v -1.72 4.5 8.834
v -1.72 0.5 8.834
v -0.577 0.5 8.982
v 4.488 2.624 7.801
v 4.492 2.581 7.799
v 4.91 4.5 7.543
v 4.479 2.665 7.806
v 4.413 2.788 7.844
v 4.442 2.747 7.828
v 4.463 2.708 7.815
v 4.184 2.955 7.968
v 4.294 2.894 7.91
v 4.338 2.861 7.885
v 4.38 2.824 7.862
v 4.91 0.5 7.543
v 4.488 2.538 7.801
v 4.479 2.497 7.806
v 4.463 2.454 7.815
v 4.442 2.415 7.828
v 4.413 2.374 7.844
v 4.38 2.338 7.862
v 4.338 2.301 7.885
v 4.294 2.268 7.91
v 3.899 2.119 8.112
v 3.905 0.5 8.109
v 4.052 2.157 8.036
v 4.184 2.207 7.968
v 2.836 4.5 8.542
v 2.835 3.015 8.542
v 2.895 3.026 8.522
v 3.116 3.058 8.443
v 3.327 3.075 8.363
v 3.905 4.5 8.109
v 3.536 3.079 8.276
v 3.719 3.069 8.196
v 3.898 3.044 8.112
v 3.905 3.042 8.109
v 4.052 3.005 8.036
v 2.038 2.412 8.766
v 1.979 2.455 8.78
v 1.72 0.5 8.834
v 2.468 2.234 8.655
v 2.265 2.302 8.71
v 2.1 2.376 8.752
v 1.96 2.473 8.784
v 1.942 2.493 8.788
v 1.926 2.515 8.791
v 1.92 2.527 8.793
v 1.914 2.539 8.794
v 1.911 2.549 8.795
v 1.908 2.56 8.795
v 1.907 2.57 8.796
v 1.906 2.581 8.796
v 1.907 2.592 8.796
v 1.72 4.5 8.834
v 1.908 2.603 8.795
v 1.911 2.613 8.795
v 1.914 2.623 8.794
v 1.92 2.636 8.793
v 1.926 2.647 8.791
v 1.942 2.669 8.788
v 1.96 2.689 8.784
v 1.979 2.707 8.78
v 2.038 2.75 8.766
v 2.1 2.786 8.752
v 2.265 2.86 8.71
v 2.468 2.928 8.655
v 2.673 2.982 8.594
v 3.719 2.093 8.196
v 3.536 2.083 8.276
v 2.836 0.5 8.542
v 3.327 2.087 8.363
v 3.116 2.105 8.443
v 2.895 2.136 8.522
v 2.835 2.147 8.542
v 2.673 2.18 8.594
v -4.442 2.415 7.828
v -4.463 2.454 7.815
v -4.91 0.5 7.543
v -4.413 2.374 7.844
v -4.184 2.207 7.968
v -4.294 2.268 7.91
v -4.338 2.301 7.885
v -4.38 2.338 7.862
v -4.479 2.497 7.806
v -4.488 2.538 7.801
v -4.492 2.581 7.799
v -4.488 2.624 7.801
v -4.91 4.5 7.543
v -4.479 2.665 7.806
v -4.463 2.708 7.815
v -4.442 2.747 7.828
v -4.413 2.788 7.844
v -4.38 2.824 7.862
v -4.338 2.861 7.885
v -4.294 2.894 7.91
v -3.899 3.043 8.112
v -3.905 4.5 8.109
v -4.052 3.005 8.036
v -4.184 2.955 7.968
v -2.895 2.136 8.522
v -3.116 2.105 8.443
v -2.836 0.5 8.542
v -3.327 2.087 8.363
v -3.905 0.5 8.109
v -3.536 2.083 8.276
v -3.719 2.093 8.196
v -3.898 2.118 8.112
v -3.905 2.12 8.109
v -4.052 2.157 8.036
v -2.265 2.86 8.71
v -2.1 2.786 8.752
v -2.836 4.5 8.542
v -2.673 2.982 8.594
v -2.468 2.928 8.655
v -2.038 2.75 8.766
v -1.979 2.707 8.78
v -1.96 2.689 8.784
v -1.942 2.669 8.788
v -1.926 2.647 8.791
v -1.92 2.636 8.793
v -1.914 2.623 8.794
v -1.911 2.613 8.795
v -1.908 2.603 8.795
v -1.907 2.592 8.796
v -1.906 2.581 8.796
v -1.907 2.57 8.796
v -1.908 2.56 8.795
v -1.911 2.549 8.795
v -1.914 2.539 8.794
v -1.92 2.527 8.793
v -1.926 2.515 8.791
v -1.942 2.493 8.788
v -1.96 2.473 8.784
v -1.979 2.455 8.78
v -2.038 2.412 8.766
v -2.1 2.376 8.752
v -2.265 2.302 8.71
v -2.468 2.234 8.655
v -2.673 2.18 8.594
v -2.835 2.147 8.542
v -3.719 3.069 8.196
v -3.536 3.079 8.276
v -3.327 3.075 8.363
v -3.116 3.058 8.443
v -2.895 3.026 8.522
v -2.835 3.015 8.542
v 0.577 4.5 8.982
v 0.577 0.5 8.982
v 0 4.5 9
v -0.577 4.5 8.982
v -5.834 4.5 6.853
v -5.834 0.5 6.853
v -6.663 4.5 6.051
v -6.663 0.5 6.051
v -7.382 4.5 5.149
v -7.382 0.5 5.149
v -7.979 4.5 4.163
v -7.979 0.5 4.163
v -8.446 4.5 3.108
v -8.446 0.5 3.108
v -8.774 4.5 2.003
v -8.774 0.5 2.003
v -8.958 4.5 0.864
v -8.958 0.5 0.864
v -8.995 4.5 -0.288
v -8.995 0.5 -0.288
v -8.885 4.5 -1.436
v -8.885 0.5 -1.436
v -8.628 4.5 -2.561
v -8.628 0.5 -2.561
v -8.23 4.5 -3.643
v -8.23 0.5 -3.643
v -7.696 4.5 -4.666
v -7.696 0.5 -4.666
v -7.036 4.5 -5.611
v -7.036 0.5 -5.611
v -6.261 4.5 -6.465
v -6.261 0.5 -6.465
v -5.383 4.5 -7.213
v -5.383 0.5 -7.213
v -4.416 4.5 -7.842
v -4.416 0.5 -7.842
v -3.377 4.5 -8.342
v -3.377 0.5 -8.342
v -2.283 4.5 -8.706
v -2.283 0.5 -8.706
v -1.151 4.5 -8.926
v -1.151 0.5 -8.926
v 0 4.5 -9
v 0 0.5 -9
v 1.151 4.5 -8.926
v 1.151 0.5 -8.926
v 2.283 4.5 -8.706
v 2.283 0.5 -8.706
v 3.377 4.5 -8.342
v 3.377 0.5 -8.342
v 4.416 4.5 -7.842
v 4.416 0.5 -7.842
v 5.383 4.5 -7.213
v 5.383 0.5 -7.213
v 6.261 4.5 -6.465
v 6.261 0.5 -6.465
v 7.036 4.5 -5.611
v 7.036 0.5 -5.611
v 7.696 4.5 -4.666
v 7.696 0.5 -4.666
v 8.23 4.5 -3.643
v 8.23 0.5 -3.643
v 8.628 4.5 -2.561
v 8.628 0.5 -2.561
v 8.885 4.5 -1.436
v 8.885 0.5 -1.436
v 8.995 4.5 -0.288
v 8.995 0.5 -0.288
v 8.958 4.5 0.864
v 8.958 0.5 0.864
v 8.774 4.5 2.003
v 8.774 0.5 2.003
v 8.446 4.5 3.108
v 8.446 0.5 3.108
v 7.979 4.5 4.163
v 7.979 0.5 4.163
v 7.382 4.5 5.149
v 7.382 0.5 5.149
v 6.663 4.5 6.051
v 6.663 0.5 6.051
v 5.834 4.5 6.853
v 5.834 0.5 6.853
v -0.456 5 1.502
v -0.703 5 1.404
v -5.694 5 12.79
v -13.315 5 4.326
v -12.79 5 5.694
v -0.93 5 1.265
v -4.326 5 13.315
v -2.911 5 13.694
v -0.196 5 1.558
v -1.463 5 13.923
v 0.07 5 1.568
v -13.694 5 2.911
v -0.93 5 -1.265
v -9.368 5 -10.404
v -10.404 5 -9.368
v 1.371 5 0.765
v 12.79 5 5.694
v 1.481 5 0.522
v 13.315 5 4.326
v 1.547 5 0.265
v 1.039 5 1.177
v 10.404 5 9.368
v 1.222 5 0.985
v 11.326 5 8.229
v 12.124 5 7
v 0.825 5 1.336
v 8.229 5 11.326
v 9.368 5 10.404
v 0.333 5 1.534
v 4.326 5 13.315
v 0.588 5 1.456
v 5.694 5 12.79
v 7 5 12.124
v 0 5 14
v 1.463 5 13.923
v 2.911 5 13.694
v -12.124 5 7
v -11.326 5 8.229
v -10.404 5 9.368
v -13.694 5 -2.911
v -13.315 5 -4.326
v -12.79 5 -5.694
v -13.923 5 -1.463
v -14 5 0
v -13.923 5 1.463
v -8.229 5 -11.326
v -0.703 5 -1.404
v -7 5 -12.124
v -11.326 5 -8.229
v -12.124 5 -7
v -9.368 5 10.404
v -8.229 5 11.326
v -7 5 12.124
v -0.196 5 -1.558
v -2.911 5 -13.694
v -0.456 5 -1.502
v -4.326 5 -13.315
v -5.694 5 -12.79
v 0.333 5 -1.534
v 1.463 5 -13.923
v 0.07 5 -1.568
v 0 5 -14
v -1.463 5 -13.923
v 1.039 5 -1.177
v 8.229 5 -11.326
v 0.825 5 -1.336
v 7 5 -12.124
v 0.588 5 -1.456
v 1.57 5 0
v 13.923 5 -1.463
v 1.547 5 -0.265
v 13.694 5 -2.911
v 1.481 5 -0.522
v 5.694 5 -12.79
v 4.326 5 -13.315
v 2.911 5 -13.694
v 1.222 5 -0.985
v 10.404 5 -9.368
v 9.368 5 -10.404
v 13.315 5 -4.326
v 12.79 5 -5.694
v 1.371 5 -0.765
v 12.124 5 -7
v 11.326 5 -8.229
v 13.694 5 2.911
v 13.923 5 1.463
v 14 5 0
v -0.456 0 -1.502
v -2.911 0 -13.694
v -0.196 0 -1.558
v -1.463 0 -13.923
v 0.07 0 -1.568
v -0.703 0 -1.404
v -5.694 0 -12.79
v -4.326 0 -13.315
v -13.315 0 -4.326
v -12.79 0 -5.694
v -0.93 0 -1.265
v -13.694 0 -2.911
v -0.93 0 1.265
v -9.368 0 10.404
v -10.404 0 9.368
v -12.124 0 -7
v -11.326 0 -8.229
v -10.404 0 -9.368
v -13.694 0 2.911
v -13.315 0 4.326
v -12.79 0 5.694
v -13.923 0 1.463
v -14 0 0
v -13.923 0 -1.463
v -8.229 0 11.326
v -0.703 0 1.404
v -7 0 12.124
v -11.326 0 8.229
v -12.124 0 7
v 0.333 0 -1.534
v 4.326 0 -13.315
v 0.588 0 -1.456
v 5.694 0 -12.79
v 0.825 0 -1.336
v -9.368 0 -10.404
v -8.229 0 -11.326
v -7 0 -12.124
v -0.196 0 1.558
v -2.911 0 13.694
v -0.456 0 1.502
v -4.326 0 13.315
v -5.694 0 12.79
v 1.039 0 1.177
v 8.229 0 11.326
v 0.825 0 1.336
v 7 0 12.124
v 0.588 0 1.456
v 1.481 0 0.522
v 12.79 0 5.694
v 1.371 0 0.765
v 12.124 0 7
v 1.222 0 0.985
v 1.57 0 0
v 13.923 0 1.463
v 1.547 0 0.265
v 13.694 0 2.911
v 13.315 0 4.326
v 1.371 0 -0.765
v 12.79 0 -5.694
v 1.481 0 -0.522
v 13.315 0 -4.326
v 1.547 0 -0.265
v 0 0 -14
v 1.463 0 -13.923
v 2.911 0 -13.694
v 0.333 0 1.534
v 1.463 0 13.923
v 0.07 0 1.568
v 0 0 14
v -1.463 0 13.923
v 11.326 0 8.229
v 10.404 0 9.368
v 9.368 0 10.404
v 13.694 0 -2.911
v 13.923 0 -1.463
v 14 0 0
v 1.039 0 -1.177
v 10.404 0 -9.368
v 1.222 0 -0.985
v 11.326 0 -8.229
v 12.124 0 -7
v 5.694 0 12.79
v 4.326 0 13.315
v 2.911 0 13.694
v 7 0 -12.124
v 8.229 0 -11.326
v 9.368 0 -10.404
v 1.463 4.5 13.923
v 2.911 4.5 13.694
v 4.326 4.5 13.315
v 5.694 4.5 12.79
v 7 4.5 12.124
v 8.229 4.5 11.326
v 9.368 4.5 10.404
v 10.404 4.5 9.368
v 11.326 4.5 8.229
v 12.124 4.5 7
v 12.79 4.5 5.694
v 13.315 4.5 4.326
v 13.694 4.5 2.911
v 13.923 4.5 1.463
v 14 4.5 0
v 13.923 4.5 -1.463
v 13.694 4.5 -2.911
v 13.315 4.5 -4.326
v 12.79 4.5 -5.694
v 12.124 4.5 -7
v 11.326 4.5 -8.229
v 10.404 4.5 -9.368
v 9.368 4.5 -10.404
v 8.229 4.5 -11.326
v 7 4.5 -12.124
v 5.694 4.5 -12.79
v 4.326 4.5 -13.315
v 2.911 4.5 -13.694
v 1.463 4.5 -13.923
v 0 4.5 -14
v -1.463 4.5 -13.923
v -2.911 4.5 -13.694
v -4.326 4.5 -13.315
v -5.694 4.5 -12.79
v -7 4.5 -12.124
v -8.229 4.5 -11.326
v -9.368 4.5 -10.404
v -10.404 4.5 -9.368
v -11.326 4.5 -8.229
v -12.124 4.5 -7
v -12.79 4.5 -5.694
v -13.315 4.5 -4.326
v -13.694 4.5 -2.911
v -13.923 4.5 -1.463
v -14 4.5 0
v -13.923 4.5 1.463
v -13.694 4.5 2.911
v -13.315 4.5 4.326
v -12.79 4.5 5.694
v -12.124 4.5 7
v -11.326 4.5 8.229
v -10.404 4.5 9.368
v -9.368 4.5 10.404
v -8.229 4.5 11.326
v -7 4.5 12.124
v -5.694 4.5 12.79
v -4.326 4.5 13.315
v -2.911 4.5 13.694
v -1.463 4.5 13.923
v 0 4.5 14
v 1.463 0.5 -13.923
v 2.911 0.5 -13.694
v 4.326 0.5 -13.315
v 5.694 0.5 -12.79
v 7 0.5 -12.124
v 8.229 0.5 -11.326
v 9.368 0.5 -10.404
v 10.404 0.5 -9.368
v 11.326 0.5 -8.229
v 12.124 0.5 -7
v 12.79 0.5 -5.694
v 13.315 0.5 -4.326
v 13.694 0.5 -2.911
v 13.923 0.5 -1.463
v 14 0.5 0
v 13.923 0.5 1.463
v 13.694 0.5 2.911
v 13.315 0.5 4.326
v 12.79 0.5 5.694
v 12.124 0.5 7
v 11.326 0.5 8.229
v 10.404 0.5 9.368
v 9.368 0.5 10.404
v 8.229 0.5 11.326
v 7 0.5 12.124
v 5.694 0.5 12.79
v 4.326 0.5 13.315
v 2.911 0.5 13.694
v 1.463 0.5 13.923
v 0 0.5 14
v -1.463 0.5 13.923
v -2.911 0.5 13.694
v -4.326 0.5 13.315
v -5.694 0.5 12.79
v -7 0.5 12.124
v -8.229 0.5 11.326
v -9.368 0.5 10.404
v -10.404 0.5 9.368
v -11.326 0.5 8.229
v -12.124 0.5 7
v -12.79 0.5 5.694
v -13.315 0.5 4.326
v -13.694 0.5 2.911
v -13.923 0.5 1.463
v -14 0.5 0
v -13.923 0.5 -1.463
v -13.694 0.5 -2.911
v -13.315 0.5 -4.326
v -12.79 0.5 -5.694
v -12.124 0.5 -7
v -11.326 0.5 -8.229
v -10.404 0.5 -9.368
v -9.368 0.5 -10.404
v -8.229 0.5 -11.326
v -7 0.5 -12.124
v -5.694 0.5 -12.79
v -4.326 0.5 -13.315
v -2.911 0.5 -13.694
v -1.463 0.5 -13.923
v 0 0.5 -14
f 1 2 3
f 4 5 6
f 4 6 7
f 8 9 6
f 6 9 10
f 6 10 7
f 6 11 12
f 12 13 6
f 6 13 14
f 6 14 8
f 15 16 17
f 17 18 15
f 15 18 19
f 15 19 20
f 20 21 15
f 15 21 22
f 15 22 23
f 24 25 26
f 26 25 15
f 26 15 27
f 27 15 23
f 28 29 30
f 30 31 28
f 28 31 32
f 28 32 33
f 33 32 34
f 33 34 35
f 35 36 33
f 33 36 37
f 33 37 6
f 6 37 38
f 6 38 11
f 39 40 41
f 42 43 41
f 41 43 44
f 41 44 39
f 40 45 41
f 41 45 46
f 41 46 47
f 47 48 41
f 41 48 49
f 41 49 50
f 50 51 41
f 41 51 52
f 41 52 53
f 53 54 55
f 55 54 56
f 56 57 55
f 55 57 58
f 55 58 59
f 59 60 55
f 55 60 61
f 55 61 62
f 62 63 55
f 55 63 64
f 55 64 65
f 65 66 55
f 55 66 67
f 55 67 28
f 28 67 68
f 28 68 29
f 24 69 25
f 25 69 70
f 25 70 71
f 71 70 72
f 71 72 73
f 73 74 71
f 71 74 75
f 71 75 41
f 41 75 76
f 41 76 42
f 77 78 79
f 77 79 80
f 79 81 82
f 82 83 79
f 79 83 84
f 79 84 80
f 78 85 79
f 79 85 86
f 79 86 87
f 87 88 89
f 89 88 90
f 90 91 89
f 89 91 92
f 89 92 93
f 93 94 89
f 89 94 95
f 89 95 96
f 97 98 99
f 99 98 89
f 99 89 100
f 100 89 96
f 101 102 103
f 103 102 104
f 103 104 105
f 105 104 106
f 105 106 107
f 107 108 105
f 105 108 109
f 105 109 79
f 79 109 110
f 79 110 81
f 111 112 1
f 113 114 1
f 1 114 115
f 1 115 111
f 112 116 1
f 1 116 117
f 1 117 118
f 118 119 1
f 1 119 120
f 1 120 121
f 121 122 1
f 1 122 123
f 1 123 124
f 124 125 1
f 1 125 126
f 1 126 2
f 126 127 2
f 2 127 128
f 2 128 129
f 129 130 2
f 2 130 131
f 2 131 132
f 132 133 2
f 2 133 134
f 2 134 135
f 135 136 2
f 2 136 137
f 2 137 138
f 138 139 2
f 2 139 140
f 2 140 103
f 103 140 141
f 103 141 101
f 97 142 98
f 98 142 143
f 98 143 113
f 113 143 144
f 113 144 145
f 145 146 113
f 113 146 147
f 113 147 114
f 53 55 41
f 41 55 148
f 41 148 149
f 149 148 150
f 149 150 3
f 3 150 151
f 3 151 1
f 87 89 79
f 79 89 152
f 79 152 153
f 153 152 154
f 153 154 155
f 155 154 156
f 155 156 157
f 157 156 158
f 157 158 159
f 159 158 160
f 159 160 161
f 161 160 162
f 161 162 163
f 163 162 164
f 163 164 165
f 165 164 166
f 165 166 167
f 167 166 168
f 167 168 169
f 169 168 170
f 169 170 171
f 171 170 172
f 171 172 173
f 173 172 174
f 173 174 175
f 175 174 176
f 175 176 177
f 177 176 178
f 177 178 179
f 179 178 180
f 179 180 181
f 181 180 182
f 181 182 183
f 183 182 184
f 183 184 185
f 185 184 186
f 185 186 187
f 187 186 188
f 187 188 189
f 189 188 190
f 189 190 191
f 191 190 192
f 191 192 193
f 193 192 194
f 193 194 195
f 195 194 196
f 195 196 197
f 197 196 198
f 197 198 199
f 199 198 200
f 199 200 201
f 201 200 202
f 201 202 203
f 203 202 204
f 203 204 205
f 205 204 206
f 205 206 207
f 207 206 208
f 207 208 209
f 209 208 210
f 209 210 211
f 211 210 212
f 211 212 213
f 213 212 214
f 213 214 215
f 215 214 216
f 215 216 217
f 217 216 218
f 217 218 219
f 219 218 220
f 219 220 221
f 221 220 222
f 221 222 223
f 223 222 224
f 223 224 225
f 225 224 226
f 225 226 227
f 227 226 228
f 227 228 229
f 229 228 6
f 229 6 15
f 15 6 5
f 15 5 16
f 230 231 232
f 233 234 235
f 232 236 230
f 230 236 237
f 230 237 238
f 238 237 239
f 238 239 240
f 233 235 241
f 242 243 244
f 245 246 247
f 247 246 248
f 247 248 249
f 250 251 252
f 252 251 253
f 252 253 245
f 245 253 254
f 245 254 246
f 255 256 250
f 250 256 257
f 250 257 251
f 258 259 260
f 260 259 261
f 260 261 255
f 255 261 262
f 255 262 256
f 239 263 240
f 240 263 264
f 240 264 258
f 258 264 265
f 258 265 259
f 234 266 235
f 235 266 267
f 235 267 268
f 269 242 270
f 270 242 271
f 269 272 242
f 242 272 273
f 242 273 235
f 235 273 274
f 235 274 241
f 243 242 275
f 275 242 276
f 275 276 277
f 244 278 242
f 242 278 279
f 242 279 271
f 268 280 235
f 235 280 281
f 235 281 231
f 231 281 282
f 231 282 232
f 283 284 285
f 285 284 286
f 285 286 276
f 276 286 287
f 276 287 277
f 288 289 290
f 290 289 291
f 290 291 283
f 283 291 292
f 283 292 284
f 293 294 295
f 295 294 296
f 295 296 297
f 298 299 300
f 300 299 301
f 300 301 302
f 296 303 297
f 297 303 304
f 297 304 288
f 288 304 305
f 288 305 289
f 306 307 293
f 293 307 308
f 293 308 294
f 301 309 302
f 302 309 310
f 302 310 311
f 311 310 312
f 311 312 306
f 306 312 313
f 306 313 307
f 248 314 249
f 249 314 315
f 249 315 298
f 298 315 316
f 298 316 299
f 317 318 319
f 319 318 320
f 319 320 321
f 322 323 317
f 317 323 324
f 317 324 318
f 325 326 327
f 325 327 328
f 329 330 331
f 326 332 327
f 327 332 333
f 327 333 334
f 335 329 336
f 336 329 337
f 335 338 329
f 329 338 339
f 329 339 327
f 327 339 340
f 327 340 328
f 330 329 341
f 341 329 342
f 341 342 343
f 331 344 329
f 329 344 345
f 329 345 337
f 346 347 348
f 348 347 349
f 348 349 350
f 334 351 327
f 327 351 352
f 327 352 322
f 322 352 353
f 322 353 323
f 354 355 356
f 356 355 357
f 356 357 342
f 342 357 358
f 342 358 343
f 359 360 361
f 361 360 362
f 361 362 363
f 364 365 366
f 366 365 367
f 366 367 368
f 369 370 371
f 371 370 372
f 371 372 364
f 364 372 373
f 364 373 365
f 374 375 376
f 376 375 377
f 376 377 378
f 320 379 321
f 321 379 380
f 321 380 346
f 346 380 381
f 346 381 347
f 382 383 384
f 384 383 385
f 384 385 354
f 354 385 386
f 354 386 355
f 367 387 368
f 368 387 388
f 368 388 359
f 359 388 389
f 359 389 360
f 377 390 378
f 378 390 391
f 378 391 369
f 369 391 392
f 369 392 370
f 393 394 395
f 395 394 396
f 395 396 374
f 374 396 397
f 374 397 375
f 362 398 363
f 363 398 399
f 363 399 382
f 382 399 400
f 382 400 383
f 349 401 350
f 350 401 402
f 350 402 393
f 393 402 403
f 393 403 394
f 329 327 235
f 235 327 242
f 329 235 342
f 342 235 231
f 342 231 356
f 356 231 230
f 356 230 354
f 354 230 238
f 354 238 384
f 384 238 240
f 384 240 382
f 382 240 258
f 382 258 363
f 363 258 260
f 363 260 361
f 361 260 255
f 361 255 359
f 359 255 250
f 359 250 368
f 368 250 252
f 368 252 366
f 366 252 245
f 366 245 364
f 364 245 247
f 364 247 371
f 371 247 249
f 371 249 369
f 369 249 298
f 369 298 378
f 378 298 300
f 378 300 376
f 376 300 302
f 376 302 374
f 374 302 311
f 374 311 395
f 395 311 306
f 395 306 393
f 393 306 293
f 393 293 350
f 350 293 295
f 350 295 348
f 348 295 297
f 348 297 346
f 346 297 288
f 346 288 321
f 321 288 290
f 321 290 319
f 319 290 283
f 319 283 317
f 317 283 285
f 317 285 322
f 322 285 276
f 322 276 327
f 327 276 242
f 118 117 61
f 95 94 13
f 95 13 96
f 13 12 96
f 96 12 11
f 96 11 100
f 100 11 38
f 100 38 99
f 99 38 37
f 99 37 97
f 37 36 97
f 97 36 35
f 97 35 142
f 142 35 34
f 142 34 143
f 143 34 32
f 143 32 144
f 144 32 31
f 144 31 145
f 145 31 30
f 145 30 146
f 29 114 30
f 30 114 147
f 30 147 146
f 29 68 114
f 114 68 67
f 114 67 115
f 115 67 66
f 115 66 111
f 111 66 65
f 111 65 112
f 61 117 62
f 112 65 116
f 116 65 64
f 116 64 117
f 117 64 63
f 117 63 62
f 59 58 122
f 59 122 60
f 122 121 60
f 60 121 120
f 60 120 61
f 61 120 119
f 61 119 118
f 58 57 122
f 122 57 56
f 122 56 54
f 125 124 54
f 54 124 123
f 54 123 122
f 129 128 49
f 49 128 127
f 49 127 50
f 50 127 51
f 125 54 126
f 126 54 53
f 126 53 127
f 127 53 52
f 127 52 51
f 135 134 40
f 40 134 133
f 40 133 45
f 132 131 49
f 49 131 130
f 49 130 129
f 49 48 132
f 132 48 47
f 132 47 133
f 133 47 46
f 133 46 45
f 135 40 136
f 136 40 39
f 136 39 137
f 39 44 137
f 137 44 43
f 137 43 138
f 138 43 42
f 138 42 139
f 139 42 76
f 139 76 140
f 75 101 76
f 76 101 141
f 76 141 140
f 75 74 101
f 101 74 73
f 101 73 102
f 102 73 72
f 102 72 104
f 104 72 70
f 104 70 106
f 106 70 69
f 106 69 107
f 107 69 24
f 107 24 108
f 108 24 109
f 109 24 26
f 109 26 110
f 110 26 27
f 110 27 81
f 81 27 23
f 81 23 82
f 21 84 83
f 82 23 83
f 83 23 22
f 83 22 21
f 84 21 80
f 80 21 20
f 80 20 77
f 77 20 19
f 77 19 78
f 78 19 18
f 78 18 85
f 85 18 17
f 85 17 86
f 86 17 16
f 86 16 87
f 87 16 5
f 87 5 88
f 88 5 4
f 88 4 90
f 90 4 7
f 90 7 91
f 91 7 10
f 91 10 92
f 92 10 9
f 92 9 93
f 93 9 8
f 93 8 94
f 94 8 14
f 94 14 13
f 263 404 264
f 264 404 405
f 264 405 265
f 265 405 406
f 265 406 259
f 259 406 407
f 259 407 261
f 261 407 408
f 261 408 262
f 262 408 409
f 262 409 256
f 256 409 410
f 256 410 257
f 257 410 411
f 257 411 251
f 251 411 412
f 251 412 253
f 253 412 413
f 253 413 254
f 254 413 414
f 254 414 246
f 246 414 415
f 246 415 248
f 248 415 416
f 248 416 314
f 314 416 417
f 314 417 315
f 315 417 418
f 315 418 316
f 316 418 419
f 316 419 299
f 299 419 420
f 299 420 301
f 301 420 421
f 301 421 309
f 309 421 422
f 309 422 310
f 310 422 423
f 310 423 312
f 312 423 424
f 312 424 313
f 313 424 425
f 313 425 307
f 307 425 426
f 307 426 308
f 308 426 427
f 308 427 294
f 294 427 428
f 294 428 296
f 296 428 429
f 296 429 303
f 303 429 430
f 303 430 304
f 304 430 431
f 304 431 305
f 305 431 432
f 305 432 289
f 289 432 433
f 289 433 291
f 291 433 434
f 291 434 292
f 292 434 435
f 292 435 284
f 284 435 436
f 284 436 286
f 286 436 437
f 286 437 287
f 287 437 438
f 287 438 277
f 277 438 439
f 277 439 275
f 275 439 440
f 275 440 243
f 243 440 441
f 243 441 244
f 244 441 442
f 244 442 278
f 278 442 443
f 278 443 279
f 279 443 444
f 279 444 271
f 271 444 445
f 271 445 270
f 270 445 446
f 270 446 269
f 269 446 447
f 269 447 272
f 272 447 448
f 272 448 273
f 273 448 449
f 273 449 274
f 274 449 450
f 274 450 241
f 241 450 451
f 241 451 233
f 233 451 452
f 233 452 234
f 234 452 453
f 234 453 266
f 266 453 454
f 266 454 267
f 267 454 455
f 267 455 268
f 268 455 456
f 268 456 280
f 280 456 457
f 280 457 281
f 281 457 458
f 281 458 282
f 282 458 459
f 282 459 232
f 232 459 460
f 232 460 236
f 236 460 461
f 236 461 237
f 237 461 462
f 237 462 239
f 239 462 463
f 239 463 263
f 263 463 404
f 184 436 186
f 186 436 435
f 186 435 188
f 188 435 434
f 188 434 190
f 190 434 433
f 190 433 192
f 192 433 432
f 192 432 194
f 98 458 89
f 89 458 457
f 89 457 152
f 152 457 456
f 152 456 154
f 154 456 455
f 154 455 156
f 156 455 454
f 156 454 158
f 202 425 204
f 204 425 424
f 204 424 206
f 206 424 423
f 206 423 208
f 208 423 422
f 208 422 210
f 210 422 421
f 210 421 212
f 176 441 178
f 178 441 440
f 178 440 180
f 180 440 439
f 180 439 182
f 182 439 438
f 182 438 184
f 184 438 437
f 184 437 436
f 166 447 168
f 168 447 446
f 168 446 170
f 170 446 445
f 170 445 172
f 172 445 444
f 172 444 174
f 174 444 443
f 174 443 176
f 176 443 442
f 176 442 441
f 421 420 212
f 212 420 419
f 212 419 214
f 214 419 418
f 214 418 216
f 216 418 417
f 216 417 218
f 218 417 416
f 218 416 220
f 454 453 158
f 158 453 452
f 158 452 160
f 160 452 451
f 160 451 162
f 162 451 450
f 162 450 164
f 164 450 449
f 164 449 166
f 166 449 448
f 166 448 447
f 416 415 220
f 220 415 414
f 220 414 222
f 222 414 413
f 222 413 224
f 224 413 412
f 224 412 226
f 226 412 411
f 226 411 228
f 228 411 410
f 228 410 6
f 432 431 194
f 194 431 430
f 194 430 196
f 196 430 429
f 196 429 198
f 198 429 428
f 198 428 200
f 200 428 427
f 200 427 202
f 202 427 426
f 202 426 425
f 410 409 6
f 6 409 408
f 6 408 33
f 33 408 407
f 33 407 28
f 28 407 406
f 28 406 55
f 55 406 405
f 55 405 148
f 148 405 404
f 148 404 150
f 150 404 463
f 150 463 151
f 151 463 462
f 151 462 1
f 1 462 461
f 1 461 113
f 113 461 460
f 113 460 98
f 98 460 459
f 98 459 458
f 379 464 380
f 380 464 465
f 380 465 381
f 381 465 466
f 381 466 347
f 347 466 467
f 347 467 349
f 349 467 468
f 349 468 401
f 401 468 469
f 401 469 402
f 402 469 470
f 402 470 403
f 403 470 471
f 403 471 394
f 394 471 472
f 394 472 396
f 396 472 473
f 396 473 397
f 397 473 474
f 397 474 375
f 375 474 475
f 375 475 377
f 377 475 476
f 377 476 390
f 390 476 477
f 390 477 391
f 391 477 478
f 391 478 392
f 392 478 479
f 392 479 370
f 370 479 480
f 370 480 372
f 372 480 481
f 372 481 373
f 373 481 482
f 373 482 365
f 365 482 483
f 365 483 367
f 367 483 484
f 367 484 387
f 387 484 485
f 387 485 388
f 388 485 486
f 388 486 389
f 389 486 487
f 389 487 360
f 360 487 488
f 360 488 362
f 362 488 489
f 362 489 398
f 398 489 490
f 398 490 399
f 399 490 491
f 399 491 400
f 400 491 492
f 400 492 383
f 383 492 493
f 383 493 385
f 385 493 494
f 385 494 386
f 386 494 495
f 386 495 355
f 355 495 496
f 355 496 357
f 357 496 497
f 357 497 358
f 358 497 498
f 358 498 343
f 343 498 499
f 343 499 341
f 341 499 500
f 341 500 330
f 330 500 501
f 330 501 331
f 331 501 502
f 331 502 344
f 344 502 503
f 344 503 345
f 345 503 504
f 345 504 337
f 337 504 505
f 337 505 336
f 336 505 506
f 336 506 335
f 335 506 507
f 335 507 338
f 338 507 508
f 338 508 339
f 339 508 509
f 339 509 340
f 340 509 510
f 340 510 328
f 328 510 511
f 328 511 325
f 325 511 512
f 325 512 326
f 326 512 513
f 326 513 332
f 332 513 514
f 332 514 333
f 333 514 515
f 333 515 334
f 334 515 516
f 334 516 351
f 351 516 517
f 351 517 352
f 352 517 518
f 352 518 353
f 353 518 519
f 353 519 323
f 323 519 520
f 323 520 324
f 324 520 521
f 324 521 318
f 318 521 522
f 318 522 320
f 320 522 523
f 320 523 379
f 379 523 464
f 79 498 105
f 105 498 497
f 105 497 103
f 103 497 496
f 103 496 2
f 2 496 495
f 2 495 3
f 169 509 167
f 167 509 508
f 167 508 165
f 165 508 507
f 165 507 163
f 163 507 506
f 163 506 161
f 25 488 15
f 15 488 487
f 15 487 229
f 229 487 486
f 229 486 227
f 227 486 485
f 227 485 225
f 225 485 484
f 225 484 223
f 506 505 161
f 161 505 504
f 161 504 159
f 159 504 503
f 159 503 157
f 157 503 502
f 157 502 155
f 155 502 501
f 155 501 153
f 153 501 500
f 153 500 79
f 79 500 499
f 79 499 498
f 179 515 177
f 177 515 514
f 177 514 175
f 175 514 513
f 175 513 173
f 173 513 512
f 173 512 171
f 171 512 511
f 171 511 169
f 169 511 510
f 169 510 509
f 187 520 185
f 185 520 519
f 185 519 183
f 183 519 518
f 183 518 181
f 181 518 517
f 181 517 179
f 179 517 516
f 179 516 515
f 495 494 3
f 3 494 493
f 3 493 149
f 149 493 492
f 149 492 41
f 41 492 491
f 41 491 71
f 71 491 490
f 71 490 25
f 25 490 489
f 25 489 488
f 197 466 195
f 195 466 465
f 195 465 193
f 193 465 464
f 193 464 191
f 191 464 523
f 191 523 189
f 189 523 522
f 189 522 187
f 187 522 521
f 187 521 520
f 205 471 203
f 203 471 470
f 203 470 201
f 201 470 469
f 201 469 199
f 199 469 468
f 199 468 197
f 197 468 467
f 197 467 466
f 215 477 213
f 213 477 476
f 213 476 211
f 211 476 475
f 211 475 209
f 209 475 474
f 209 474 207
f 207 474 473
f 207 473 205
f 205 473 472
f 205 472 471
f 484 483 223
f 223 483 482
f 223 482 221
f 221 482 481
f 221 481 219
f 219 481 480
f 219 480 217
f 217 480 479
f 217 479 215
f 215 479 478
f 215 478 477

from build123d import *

# Parameters (mm, degrees)
SKETCH_1_R          = 9
EXTRUDE_1_DEPTH     = 5
CUT_EXTRUDE_1_DEPTH = 14.674794331
SKETCH_6_R          = 0.498388016
CUT_EXTRUDE_3_DEPTH = 50
EXTRUDE_START       = -0.5
SKETCH_3_R          = 14
SKETCH_3_R_2        = 9
EXTRUDE_2_DEPTH     = 0.5
SKETCH_5_R          = 14
SKETCH_5_R_2        = 9
EXTRUDE_3_DEPTH     = 0.5


with BuildPart() as part:
    # 草圖1 → 填料-伸長1 (new body)
    with BuildSketch(Plane(origin=(0, 0, 0), x_dir=(1, 0, 0), z_dir=(0, 1, 0))):
        with Locations(Location((0, 0, 0), (0, 0, 270))):
            Circle(SKETCH_1_R)
    extrude(amount=EXTRUDE_1_DEPTH)

    # 草圖2 → 除料-伸長1 (cut, through all)
    with BuildSketch(Plane(origin=(0, 5, 0), x_dir=(1, 0, 0), z_dir=(0, 1, 0))):
        with BuildLine():
            Line((-0.93, 1.264911064), (-0.93, -1.264911064))
            ThreePointArc((-0.93, -1.264911064), (0.708801806, -1.400892573), (1.57, 0))
            ThreePointArc((1.57, 0), (0.708801806, 1.400892573), (-0.93, 1.264911064))
        make_face()
    extrude(amount=-CUT_EXTRUDE_1_DEPTH, mode=Mode.SUBTRACT)

    # 草圖6 → 除料-伸長3 (cut, symmetric)
    with BuildSketch(Plane(origin=(0, 0, 0), x_dir=(0, 0, -1), z_dir=(1, 0, 0))):
        with Locations((-8.29743406, 2.581049417)):
            Circle(SKETCH_6_R)
    extrude(amount=CUT_EXTRUDE_3_DEPTH, both=True, mode=Mode.SUBTRACT)

    # 草圖3 → 填料-伸長2 (add)
    with BuildSketch(Plane(origin=(0, 5, 0), x_dir=(1, 0, 0), z_dir=(0, 1, 0)).offset(EXTRUDE_START)):
        with Locations(Location((0, 0, 0), (0, 0, 270))):
            Circle(SKETCH_3_R)
        with Locations(Location((0, 0, 0), (0, 0, 270))):
            Circle(SKETCH_3_R_2, mode=Mode.SUBTRACT)
    extrude(amount=EXTRUDE_2_DEPTH)

    # 草圖5 → 填料-伸長3 (add)
    with BuildSketch(Plane.XZ):
        with Locations(Location((0, 0, 0), (0, 0, 90))):
            Circle(SKETCH_5_R)
        with Locations(Location((0, 0, 0), (0, 0, 270))):
            Circle(SKETCH_5_R_2, mode=Mode.SUBTRACT)
    extrude(amount=-EXTRUDE_3_DEPTH)


solid = part.part
